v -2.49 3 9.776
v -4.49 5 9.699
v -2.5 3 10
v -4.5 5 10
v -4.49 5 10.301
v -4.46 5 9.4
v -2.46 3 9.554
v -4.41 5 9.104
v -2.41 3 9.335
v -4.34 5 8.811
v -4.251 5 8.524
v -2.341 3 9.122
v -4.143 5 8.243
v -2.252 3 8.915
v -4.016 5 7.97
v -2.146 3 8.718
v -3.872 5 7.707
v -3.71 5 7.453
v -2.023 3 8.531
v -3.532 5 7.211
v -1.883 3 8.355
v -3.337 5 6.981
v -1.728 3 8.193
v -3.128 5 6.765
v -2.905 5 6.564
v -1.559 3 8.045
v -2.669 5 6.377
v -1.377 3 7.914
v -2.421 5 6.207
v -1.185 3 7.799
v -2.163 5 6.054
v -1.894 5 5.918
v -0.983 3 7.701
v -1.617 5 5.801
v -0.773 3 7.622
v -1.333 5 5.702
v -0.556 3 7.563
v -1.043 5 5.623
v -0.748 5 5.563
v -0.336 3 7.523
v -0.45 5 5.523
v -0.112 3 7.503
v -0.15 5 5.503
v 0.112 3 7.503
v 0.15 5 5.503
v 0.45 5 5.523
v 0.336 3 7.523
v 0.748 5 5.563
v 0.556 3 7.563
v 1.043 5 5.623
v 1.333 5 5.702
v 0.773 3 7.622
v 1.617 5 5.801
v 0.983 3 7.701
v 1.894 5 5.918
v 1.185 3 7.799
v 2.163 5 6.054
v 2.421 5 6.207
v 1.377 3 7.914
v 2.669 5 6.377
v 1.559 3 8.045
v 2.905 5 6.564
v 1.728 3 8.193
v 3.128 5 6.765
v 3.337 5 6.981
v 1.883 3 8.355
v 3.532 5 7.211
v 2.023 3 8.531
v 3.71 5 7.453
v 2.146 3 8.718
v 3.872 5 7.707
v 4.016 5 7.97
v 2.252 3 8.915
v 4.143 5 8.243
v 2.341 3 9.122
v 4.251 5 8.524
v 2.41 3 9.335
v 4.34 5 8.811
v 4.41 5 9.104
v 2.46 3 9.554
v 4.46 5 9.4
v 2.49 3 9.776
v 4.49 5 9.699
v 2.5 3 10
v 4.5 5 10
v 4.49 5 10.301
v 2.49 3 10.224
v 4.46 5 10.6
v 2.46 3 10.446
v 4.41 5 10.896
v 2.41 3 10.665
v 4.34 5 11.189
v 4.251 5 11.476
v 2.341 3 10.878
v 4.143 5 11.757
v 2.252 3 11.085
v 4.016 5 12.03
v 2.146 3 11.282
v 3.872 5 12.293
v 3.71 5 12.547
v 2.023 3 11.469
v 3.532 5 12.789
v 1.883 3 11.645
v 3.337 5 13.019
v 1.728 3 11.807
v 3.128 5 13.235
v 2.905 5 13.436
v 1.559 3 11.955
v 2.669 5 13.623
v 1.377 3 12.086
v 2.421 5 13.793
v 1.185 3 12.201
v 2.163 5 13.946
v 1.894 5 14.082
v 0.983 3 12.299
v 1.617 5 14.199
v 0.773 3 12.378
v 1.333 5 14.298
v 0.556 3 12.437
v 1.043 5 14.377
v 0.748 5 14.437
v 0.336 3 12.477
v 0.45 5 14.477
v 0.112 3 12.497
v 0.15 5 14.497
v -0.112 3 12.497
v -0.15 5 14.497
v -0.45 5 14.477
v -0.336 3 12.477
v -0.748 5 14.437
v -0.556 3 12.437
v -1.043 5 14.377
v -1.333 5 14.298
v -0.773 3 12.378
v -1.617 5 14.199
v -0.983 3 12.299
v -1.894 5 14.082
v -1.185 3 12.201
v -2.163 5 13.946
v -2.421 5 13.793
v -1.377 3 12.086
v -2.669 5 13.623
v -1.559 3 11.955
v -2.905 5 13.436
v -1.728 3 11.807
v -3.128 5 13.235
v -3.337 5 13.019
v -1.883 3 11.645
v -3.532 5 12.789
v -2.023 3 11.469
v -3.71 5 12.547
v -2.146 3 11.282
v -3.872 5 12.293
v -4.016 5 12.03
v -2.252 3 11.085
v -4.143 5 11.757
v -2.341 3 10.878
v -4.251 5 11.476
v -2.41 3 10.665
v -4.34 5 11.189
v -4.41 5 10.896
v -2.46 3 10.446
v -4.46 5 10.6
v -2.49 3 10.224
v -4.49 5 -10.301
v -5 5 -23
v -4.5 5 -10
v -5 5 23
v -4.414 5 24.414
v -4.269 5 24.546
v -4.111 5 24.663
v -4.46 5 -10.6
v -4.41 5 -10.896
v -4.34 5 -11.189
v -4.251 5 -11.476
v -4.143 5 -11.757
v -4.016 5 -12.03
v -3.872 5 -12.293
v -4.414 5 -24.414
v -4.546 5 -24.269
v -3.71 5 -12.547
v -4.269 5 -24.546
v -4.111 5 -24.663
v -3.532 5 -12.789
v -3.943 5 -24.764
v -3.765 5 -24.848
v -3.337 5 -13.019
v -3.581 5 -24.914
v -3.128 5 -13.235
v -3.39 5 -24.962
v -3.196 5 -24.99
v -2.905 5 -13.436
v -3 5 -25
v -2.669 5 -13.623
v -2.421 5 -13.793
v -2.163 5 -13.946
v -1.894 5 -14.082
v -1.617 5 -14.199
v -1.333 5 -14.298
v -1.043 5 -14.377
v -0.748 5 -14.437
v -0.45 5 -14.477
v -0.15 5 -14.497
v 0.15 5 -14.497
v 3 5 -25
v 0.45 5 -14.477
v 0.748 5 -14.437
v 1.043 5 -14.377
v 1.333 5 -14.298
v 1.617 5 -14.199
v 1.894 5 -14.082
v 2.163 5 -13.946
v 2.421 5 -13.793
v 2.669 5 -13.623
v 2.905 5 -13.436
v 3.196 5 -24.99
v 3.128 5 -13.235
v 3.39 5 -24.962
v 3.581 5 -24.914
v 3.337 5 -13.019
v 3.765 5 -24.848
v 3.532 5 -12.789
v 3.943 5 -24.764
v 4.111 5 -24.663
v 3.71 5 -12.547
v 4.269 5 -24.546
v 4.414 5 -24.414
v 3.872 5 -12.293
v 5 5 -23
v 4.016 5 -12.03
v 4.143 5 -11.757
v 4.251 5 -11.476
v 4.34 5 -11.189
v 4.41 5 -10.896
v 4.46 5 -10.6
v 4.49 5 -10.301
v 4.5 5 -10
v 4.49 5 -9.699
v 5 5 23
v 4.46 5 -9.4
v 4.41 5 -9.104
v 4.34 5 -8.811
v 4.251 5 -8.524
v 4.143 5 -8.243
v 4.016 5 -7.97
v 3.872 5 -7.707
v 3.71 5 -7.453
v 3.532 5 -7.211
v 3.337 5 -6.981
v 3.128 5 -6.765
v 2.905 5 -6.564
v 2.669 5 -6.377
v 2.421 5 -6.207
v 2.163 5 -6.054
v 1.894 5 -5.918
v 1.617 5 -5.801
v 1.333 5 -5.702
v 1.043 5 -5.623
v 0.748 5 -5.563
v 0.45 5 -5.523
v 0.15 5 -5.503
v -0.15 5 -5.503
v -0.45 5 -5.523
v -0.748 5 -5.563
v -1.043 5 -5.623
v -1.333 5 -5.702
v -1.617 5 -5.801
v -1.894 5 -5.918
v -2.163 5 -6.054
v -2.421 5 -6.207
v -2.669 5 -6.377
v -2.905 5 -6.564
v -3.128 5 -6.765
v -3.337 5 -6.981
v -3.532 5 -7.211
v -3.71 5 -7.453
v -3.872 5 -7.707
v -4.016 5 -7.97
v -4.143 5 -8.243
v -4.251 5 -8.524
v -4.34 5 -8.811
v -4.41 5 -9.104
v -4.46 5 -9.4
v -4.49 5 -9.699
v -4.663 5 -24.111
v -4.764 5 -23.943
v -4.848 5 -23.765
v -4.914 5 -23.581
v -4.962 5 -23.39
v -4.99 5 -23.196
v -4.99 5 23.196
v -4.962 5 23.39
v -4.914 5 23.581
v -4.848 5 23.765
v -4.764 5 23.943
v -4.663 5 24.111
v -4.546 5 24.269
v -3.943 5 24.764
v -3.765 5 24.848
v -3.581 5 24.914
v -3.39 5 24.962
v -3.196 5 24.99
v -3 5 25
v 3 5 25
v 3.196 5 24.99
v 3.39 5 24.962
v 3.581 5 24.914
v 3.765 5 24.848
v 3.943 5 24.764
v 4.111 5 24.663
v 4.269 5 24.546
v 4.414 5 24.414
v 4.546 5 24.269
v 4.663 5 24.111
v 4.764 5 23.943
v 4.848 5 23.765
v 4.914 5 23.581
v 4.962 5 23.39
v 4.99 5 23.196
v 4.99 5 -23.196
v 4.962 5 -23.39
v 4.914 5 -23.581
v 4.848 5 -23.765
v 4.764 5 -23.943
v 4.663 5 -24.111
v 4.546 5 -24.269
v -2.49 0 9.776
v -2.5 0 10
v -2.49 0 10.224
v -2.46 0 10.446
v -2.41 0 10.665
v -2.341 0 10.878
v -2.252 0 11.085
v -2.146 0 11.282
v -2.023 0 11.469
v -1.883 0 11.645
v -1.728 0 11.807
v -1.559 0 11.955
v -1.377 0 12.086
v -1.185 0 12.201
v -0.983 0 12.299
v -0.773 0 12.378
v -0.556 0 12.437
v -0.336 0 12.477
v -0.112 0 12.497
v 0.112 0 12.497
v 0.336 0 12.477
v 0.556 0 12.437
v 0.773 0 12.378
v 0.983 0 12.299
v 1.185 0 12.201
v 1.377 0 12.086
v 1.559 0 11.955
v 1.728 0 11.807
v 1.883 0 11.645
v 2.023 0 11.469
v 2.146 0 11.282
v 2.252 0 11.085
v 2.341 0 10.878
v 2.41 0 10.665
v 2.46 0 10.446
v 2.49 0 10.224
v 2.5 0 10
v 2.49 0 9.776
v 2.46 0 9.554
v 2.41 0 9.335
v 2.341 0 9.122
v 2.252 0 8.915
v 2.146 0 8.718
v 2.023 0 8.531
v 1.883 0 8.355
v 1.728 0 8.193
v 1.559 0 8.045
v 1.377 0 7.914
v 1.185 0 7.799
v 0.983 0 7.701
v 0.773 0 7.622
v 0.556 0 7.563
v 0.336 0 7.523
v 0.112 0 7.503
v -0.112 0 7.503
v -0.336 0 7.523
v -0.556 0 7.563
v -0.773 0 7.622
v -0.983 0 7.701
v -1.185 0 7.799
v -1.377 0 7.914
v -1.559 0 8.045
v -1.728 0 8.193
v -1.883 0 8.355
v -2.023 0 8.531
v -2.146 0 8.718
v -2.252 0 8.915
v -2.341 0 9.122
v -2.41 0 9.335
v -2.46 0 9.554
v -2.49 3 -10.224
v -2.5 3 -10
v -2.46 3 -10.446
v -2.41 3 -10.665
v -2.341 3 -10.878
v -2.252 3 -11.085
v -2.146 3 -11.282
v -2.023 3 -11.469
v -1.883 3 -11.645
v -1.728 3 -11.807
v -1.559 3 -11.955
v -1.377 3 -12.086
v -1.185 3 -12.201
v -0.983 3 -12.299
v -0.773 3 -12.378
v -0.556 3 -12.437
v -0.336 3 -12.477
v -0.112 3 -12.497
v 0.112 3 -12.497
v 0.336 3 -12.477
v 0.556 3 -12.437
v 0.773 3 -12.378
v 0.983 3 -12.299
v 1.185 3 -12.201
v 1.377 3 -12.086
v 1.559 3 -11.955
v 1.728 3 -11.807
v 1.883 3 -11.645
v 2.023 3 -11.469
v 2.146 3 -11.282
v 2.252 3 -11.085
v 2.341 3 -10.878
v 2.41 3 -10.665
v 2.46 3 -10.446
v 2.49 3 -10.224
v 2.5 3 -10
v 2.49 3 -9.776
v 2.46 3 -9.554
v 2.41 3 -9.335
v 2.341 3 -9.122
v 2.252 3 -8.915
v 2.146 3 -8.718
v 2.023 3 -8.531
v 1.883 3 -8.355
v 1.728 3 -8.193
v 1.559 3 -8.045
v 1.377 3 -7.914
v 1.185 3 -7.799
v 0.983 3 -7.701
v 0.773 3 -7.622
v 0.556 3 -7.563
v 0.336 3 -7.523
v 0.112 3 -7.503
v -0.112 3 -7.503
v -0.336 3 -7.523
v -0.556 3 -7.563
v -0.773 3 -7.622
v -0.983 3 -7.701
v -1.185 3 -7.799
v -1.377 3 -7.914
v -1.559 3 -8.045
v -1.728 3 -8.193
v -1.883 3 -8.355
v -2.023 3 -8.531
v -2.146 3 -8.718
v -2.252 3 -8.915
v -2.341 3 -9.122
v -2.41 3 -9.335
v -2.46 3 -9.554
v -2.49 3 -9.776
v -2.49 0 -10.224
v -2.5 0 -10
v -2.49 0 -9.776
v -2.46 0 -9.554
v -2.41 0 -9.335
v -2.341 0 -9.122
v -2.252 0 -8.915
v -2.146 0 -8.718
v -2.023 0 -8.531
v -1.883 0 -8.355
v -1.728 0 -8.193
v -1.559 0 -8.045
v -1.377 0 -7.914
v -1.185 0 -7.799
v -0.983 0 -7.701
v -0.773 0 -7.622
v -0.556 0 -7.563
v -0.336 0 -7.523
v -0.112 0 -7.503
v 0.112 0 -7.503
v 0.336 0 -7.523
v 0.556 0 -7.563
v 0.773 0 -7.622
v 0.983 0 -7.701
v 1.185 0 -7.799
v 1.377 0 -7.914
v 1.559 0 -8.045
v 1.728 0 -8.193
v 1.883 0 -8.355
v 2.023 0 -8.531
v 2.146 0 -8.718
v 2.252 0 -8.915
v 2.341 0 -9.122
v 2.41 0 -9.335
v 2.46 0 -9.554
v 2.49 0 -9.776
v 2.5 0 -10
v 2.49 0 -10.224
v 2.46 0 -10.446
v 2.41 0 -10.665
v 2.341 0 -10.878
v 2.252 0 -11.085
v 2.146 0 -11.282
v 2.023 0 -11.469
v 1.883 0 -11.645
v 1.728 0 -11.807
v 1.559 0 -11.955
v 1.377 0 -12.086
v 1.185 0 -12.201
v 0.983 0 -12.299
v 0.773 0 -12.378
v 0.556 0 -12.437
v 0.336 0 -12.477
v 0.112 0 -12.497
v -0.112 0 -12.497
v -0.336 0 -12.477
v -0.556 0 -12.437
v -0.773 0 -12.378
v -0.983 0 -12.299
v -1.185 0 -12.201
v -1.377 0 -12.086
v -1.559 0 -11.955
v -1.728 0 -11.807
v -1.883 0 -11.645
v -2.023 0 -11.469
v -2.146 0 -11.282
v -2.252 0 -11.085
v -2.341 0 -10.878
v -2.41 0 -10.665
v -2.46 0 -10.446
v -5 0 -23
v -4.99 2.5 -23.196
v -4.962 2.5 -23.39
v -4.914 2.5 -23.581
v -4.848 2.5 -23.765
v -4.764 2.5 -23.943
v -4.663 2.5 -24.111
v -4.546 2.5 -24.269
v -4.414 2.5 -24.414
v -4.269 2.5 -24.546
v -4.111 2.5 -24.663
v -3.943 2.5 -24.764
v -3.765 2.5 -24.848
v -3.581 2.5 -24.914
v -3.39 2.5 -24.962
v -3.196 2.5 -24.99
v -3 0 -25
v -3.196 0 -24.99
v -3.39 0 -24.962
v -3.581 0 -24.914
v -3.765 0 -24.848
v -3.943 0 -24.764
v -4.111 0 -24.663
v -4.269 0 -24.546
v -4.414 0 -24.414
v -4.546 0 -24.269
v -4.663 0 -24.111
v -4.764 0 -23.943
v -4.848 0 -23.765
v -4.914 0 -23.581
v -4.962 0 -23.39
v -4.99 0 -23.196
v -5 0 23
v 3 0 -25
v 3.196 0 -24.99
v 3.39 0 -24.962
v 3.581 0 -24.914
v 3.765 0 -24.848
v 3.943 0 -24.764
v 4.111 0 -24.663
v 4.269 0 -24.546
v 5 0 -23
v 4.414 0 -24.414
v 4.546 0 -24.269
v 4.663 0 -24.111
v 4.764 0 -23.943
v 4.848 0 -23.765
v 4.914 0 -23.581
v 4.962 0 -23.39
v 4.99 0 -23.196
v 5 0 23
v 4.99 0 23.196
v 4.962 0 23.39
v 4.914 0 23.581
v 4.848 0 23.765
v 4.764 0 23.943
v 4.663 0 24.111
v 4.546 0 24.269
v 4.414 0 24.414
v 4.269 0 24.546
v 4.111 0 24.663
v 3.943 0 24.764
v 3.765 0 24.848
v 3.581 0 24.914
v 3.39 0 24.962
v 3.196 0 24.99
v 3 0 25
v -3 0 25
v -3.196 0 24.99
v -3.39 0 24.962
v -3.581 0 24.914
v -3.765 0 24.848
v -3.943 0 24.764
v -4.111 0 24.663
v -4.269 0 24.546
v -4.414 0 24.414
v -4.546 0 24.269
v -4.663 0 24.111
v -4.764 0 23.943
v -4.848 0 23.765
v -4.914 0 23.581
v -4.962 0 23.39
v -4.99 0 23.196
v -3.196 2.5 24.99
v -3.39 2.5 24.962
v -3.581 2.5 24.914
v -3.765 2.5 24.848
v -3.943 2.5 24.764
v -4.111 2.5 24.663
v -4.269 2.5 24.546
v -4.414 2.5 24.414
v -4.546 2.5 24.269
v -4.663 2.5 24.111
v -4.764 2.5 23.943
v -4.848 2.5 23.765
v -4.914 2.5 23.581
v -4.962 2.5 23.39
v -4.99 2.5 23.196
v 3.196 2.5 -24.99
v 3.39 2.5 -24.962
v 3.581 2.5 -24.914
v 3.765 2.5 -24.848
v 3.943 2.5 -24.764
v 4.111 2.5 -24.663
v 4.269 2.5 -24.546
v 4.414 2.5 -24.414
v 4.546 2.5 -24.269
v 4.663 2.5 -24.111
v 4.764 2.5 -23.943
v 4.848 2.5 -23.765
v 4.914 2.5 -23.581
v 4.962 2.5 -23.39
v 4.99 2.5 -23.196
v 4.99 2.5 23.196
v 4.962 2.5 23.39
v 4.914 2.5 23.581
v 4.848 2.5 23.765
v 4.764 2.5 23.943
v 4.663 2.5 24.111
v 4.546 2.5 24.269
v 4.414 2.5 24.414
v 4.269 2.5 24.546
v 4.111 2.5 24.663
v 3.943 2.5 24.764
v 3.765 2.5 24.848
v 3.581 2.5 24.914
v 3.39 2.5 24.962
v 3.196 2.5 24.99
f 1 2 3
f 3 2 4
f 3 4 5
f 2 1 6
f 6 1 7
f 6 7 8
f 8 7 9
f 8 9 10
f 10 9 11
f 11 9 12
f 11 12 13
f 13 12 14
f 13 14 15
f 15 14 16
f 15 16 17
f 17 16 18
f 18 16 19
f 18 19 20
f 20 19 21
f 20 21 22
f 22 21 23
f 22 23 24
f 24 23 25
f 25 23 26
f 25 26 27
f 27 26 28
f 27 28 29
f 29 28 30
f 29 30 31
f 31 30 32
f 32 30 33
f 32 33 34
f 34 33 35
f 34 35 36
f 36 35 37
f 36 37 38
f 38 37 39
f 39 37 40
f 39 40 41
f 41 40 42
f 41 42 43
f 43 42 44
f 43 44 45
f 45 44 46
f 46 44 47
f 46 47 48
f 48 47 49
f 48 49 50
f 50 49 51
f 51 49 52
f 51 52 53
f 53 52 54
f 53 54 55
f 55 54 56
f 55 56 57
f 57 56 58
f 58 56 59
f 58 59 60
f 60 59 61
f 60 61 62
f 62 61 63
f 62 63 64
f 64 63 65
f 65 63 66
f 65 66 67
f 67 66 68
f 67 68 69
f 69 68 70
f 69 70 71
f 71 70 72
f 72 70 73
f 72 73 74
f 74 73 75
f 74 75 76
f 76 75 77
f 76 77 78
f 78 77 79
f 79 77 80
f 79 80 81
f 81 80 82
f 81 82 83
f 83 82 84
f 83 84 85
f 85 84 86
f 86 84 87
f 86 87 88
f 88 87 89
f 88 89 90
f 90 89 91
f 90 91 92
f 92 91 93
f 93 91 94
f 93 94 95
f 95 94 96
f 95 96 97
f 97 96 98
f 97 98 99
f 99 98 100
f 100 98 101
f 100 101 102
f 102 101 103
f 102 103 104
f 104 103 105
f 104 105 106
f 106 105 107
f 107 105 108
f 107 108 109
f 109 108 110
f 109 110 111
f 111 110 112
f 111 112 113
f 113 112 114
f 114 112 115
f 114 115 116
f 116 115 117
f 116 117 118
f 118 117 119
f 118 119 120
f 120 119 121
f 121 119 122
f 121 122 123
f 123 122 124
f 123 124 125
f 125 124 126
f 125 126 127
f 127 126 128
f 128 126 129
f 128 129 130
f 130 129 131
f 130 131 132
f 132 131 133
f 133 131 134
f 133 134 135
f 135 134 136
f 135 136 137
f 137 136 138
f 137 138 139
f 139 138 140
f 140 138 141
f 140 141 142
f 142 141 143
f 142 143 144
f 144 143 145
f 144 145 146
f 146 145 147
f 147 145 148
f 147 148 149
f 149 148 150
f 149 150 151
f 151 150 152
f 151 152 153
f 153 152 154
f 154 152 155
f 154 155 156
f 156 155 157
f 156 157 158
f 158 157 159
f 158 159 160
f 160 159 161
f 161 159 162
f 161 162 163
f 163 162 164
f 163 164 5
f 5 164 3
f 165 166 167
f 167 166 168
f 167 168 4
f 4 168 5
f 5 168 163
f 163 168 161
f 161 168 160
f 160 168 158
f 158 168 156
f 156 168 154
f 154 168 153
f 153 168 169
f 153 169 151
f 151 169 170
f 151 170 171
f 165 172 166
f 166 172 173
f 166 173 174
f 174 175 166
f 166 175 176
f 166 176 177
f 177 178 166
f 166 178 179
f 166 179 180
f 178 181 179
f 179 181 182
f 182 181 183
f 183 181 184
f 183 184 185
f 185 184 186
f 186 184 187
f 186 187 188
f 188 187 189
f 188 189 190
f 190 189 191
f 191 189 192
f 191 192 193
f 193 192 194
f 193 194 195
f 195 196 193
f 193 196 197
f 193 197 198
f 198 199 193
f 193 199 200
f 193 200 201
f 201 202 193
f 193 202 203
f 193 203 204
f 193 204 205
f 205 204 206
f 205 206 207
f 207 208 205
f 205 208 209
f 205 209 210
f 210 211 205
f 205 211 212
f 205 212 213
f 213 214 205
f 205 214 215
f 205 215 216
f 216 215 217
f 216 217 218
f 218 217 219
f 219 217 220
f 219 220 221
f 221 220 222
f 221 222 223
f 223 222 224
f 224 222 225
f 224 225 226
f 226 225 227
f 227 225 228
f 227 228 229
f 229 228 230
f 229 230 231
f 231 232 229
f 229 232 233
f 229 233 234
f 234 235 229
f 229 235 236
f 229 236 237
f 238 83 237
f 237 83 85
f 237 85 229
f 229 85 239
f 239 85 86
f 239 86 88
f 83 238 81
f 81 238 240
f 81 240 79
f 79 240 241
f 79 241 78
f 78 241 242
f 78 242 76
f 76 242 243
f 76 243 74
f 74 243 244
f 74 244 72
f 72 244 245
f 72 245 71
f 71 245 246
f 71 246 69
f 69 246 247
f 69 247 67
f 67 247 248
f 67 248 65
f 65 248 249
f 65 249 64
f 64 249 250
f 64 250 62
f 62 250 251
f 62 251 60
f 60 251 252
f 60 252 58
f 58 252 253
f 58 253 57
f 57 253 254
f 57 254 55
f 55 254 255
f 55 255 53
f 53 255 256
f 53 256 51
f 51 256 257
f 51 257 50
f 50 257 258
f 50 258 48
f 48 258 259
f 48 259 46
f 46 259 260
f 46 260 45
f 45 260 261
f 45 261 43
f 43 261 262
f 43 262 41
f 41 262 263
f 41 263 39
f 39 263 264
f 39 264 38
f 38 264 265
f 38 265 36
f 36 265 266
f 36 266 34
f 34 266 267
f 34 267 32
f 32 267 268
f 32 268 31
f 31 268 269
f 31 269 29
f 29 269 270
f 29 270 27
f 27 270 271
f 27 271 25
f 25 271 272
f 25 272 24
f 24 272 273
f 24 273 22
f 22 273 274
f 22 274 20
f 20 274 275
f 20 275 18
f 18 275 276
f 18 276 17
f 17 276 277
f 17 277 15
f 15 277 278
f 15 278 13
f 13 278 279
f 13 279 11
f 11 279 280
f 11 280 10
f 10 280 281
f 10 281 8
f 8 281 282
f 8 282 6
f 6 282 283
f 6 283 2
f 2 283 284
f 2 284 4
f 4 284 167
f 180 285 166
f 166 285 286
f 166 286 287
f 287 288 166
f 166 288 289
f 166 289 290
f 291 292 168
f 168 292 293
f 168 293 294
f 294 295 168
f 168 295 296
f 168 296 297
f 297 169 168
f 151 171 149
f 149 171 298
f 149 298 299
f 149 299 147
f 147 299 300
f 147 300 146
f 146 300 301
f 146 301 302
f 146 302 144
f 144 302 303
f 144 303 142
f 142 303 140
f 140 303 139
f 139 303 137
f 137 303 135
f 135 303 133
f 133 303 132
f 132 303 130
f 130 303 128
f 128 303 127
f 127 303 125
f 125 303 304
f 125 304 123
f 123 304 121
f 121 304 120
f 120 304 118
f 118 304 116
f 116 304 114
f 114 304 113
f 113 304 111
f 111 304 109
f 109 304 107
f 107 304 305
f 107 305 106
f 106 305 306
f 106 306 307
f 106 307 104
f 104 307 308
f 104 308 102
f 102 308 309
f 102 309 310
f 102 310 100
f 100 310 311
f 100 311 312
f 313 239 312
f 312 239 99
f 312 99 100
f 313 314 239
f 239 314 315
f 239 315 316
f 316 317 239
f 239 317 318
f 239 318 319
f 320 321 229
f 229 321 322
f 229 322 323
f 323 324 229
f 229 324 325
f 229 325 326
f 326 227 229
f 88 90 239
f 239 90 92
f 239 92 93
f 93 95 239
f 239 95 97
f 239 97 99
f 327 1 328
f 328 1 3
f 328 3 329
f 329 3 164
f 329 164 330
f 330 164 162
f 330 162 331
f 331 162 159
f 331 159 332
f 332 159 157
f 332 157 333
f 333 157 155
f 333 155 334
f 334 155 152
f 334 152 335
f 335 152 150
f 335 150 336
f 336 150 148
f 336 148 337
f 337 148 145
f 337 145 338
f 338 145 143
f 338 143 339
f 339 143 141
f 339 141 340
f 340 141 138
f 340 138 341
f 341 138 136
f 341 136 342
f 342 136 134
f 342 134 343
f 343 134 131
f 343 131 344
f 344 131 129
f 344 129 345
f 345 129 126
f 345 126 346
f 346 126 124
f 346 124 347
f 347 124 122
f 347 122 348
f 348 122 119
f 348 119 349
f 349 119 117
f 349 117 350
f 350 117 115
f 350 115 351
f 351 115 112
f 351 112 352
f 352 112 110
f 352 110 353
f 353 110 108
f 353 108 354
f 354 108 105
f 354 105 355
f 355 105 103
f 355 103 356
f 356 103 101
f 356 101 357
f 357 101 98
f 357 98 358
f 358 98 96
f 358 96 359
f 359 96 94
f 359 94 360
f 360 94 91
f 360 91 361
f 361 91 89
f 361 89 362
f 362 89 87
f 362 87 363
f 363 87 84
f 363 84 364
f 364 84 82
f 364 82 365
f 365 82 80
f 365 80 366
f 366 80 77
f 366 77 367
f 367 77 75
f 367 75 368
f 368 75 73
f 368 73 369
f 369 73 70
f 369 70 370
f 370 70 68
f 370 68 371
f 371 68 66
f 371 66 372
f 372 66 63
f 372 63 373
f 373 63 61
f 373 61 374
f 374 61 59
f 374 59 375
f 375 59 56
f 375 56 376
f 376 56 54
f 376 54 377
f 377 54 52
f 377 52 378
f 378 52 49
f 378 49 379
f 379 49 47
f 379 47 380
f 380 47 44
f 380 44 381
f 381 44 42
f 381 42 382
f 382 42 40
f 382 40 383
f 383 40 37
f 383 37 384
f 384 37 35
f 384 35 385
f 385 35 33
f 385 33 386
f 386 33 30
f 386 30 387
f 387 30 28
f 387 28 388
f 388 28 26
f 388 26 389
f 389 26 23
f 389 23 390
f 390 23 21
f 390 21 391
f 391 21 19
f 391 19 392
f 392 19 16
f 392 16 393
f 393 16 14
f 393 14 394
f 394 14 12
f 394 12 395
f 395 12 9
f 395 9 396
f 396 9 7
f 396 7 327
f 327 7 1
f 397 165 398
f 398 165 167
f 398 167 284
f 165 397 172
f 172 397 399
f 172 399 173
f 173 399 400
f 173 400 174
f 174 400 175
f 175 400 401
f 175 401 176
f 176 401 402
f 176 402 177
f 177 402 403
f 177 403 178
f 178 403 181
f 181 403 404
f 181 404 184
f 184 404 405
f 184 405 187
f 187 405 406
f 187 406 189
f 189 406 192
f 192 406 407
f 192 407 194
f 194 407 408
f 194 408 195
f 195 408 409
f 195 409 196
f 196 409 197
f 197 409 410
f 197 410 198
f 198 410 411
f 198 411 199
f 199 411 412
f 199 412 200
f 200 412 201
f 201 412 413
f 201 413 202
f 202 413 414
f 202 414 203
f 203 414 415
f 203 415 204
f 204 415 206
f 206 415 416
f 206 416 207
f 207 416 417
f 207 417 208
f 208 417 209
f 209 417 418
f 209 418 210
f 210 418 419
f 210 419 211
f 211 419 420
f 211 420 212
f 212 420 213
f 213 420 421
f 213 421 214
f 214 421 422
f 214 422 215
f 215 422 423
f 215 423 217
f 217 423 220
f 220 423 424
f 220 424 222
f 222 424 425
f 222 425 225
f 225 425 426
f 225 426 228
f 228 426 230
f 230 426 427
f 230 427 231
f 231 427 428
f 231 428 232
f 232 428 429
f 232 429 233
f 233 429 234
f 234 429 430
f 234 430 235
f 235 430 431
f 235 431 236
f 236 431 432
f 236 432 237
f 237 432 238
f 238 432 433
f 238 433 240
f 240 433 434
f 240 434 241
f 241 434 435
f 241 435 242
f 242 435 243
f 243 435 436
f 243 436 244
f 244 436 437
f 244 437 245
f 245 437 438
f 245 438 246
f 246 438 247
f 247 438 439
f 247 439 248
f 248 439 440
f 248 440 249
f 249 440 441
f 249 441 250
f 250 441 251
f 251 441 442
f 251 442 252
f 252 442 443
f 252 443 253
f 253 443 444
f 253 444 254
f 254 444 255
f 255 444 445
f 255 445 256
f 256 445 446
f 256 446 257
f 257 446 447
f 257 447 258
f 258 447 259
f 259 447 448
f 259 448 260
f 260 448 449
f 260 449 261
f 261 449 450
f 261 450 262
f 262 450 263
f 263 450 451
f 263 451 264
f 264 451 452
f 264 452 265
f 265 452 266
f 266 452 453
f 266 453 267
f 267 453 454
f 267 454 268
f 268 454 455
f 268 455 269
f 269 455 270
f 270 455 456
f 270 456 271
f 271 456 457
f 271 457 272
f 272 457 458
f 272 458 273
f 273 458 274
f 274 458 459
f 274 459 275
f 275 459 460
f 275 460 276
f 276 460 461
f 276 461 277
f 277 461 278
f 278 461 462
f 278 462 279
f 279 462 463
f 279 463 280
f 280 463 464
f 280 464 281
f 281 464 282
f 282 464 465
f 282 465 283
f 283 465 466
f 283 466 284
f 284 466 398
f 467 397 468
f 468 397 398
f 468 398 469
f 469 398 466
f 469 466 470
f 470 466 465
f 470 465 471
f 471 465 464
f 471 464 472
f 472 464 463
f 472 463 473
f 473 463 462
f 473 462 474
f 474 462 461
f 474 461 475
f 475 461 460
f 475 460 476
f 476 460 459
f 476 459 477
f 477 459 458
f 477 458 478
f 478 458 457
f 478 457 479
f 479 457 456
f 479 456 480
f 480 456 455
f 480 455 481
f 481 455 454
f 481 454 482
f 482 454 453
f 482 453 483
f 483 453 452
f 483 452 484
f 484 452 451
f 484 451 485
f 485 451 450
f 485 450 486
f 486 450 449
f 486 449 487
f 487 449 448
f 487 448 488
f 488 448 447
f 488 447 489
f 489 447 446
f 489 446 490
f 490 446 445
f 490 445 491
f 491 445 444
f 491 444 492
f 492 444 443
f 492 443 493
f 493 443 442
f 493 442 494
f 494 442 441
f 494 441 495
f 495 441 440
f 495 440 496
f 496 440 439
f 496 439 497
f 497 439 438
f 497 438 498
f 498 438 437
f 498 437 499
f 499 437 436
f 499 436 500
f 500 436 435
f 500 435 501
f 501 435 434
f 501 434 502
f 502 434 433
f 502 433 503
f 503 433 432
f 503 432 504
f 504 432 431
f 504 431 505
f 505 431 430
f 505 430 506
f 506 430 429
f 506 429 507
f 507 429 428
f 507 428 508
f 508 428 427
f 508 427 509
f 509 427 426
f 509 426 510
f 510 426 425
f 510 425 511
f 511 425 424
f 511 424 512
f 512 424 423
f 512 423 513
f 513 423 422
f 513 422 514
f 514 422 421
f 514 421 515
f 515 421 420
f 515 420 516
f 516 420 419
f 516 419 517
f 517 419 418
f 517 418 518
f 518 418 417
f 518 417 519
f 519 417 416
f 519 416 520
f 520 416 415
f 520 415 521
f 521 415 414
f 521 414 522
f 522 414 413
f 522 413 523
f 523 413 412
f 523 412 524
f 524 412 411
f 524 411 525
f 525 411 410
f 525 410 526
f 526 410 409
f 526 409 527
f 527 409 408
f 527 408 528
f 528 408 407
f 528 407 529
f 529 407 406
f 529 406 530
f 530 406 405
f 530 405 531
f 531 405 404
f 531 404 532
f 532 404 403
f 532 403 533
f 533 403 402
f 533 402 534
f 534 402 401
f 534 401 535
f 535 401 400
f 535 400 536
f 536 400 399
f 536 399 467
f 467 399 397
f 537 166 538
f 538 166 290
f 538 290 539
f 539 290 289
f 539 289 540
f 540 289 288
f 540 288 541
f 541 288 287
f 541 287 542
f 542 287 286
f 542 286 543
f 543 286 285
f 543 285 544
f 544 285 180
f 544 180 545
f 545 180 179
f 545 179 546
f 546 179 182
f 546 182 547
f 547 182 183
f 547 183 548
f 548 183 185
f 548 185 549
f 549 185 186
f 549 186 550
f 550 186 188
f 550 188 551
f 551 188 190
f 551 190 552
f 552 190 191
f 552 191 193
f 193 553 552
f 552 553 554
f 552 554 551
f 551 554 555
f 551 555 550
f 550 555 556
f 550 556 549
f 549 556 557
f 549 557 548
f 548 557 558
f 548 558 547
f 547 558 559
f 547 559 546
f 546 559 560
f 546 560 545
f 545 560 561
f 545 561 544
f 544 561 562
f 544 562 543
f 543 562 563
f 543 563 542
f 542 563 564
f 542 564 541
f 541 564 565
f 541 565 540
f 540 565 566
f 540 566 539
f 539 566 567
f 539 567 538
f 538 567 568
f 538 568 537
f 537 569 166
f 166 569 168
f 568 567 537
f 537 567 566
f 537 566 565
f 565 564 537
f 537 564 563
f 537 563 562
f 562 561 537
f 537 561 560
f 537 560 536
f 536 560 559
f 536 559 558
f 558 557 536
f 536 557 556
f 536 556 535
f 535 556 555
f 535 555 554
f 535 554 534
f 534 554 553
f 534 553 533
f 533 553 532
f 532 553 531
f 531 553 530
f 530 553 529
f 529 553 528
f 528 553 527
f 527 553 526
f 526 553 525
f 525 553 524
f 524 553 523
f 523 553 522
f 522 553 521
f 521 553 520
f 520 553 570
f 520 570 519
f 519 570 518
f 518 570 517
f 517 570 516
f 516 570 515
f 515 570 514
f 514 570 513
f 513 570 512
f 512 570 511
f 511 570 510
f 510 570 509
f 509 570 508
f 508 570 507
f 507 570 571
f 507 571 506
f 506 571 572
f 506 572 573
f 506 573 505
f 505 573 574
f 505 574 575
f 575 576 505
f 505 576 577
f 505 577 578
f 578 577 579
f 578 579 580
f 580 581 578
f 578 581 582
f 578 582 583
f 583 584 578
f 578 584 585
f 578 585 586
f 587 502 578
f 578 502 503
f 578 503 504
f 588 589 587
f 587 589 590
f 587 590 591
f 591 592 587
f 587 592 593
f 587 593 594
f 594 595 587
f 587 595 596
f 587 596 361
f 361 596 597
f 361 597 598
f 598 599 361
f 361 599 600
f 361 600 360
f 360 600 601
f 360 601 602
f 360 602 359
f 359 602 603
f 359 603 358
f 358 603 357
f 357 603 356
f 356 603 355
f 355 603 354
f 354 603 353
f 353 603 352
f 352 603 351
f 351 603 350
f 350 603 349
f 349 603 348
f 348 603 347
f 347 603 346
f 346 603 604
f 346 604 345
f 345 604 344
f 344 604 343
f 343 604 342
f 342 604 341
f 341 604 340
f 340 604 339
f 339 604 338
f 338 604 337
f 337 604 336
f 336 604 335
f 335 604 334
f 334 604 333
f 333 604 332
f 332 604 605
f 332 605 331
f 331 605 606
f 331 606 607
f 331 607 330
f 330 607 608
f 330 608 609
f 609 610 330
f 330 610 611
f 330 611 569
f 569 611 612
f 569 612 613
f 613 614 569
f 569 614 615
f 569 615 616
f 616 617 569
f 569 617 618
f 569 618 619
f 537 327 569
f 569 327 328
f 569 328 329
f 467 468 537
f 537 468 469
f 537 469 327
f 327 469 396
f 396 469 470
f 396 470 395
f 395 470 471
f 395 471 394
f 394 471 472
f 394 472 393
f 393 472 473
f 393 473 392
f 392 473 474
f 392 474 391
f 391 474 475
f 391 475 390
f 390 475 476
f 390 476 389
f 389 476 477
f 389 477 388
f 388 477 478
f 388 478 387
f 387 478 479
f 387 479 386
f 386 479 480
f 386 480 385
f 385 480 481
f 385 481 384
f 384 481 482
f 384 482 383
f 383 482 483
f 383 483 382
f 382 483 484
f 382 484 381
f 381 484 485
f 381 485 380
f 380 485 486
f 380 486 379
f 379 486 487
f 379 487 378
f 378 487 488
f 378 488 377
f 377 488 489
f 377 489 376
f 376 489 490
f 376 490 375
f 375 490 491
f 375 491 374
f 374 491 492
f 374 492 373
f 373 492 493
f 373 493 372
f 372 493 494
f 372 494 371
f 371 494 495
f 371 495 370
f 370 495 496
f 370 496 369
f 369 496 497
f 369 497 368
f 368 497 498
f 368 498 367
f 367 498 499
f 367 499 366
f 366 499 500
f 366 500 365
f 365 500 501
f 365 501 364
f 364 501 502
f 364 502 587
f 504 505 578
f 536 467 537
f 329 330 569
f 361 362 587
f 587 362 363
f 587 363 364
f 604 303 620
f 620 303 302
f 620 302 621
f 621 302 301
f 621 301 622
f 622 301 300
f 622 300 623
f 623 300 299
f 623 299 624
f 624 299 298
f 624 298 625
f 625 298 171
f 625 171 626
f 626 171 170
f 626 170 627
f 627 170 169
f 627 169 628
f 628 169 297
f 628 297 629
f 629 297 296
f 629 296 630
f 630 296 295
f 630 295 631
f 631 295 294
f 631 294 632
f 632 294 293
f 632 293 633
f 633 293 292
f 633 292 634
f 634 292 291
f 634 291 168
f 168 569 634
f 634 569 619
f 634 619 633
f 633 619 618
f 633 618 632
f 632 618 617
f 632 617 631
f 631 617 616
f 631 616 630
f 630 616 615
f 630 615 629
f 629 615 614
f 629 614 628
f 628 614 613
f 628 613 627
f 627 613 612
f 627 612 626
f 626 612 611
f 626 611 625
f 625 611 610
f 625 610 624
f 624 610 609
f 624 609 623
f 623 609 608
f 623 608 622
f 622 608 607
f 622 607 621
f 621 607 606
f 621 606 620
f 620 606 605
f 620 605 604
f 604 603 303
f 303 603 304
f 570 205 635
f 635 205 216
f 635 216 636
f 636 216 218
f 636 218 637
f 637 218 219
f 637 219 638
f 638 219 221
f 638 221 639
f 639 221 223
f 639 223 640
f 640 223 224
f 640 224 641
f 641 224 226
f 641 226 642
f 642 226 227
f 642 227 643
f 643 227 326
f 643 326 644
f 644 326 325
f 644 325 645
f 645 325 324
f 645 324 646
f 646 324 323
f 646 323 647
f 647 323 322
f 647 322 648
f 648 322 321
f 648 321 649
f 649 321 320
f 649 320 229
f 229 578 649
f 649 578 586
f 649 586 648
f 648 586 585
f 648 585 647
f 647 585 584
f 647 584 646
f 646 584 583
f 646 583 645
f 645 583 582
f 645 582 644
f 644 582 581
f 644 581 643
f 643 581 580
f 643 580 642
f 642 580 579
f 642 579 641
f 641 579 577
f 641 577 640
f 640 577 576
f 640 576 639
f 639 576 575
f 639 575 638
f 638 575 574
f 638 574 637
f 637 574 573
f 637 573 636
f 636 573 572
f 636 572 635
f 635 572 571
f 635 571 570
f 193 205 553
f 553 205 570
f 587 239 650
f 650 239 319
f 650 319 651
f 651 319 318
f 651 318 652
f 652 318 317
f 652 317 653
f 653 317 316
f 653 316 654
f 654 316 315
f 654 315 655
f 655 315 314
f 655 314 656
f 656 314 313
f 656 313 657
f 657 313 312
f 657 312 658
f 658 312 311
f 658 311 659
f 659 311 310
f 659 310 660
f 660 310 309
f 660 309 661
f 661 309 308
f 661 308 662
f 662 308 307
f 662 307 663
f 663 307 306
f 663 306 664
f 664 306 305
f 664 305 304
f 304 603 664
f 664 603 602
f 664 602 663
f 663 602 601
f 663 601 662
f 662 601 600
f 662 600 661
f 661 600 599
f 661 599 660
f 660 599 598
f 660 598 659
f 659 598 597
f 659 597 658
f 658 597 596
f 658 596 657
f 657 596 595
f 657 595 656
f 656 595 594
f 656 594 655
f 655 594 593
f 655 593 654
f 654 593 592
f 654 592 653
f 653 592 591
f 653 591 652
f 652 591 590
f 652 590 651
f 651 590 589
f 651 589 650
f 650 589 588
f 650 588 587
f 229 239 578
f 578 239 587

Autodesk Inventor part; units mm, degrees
ref_plane "YZ Plane" through (0, 0, 0) normal (1, 0, 0) x (0, 1, 0)
ref_plane "XZ Plane" through (0, 0, 0) normal (0, 1, 0) x (-1, 0, 0)
ref_plane "XY Plane" through (0, 0, 0) normal (0, 0, 1) x (1, 0, 0)
sketch "Sketch1" plane through (0, 0, 0) normal (0, 1, 0) x (-1, 0, 0)
  line L0 (-5, 25) -> (5, 25)
  line L1 (5, 25) -> (5, -25)
  line L2 (5, -25) -> (-5, -25)
  line L3 (-5, -25) -> (-5, 25)
  line L4 (-5, 25) -> (5, -25) construction
  line L5 (5, 25) -> (-5, -25) construction
  circle A0 centre (0, 10) radius 2.5
  line L6 (0, 0) -> (5, 0) construction
  circle A1 centre (0, -10) radius 2.5
  dimension "d0" = 10
  dimension "d1" = 5
  dimension "d2" = 10
  dimension "d3" = 50
extrude "Extrusion1" add sketch "Sketch1" along normal blind 5
fillet "Fillet1" radius 2 4 edges at (5, 2.5, 25) (5, 2.5, -25) (-5, 2.5, 25) (-5, 2.5, -25)
chamfer "Chamfer1" distance 2 angle 45 2 edges at (2.5, 5, -10) (2.5, 5, 10)
properties part number "Stop"
